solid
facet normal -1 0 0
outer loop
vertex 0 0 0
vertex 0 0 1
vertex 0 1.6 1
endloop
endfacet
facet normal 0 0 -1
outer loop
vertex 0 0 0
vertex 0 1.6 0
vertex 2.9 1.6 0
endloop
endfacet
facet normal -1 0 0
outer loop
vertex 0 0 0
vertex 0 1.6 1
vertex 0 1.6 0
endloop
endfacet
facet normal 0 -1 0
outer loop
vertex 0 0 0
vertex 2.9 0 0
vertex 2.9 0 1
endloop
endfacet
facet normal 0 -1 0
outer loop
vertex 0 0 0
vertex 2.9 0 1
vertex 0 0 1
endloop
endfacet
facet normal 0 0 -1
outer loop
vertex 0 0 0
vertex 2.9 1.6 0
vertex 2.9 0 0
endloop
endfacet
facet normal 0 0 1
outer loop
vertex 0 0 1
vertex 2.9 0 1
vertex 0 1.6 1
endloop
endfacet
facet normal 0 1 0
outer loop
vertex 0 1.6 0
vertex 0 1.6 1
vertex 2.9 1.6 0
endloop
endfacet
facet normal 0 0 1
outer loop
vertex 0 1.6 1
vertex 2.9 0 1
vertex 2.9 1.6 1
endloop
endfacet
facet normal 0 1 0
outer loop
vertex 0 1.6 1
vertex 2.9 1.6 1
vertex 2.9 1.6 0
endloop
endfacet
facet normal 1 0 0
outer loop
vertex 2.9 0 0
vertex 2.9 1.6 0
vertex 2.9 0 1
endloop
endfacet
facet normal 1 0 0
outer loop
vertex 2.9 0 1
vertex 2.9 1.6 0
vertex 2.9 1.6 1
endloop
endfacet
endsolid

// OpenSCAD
/* Warning, this is a very basic generator with a lot of approximation 
input data : [SOT-23A, M7X, 2.90x1.60mm, 3, , C, C04-00130C]
generated by com.zoubworld.electronics.cad.model3d.Basic
Date : Sun Feb 15 10:50:48 CET 2026
*/

//body
color("black")
translate([0,0,0])
cube([2.9,1.6,1.0], center=false);
